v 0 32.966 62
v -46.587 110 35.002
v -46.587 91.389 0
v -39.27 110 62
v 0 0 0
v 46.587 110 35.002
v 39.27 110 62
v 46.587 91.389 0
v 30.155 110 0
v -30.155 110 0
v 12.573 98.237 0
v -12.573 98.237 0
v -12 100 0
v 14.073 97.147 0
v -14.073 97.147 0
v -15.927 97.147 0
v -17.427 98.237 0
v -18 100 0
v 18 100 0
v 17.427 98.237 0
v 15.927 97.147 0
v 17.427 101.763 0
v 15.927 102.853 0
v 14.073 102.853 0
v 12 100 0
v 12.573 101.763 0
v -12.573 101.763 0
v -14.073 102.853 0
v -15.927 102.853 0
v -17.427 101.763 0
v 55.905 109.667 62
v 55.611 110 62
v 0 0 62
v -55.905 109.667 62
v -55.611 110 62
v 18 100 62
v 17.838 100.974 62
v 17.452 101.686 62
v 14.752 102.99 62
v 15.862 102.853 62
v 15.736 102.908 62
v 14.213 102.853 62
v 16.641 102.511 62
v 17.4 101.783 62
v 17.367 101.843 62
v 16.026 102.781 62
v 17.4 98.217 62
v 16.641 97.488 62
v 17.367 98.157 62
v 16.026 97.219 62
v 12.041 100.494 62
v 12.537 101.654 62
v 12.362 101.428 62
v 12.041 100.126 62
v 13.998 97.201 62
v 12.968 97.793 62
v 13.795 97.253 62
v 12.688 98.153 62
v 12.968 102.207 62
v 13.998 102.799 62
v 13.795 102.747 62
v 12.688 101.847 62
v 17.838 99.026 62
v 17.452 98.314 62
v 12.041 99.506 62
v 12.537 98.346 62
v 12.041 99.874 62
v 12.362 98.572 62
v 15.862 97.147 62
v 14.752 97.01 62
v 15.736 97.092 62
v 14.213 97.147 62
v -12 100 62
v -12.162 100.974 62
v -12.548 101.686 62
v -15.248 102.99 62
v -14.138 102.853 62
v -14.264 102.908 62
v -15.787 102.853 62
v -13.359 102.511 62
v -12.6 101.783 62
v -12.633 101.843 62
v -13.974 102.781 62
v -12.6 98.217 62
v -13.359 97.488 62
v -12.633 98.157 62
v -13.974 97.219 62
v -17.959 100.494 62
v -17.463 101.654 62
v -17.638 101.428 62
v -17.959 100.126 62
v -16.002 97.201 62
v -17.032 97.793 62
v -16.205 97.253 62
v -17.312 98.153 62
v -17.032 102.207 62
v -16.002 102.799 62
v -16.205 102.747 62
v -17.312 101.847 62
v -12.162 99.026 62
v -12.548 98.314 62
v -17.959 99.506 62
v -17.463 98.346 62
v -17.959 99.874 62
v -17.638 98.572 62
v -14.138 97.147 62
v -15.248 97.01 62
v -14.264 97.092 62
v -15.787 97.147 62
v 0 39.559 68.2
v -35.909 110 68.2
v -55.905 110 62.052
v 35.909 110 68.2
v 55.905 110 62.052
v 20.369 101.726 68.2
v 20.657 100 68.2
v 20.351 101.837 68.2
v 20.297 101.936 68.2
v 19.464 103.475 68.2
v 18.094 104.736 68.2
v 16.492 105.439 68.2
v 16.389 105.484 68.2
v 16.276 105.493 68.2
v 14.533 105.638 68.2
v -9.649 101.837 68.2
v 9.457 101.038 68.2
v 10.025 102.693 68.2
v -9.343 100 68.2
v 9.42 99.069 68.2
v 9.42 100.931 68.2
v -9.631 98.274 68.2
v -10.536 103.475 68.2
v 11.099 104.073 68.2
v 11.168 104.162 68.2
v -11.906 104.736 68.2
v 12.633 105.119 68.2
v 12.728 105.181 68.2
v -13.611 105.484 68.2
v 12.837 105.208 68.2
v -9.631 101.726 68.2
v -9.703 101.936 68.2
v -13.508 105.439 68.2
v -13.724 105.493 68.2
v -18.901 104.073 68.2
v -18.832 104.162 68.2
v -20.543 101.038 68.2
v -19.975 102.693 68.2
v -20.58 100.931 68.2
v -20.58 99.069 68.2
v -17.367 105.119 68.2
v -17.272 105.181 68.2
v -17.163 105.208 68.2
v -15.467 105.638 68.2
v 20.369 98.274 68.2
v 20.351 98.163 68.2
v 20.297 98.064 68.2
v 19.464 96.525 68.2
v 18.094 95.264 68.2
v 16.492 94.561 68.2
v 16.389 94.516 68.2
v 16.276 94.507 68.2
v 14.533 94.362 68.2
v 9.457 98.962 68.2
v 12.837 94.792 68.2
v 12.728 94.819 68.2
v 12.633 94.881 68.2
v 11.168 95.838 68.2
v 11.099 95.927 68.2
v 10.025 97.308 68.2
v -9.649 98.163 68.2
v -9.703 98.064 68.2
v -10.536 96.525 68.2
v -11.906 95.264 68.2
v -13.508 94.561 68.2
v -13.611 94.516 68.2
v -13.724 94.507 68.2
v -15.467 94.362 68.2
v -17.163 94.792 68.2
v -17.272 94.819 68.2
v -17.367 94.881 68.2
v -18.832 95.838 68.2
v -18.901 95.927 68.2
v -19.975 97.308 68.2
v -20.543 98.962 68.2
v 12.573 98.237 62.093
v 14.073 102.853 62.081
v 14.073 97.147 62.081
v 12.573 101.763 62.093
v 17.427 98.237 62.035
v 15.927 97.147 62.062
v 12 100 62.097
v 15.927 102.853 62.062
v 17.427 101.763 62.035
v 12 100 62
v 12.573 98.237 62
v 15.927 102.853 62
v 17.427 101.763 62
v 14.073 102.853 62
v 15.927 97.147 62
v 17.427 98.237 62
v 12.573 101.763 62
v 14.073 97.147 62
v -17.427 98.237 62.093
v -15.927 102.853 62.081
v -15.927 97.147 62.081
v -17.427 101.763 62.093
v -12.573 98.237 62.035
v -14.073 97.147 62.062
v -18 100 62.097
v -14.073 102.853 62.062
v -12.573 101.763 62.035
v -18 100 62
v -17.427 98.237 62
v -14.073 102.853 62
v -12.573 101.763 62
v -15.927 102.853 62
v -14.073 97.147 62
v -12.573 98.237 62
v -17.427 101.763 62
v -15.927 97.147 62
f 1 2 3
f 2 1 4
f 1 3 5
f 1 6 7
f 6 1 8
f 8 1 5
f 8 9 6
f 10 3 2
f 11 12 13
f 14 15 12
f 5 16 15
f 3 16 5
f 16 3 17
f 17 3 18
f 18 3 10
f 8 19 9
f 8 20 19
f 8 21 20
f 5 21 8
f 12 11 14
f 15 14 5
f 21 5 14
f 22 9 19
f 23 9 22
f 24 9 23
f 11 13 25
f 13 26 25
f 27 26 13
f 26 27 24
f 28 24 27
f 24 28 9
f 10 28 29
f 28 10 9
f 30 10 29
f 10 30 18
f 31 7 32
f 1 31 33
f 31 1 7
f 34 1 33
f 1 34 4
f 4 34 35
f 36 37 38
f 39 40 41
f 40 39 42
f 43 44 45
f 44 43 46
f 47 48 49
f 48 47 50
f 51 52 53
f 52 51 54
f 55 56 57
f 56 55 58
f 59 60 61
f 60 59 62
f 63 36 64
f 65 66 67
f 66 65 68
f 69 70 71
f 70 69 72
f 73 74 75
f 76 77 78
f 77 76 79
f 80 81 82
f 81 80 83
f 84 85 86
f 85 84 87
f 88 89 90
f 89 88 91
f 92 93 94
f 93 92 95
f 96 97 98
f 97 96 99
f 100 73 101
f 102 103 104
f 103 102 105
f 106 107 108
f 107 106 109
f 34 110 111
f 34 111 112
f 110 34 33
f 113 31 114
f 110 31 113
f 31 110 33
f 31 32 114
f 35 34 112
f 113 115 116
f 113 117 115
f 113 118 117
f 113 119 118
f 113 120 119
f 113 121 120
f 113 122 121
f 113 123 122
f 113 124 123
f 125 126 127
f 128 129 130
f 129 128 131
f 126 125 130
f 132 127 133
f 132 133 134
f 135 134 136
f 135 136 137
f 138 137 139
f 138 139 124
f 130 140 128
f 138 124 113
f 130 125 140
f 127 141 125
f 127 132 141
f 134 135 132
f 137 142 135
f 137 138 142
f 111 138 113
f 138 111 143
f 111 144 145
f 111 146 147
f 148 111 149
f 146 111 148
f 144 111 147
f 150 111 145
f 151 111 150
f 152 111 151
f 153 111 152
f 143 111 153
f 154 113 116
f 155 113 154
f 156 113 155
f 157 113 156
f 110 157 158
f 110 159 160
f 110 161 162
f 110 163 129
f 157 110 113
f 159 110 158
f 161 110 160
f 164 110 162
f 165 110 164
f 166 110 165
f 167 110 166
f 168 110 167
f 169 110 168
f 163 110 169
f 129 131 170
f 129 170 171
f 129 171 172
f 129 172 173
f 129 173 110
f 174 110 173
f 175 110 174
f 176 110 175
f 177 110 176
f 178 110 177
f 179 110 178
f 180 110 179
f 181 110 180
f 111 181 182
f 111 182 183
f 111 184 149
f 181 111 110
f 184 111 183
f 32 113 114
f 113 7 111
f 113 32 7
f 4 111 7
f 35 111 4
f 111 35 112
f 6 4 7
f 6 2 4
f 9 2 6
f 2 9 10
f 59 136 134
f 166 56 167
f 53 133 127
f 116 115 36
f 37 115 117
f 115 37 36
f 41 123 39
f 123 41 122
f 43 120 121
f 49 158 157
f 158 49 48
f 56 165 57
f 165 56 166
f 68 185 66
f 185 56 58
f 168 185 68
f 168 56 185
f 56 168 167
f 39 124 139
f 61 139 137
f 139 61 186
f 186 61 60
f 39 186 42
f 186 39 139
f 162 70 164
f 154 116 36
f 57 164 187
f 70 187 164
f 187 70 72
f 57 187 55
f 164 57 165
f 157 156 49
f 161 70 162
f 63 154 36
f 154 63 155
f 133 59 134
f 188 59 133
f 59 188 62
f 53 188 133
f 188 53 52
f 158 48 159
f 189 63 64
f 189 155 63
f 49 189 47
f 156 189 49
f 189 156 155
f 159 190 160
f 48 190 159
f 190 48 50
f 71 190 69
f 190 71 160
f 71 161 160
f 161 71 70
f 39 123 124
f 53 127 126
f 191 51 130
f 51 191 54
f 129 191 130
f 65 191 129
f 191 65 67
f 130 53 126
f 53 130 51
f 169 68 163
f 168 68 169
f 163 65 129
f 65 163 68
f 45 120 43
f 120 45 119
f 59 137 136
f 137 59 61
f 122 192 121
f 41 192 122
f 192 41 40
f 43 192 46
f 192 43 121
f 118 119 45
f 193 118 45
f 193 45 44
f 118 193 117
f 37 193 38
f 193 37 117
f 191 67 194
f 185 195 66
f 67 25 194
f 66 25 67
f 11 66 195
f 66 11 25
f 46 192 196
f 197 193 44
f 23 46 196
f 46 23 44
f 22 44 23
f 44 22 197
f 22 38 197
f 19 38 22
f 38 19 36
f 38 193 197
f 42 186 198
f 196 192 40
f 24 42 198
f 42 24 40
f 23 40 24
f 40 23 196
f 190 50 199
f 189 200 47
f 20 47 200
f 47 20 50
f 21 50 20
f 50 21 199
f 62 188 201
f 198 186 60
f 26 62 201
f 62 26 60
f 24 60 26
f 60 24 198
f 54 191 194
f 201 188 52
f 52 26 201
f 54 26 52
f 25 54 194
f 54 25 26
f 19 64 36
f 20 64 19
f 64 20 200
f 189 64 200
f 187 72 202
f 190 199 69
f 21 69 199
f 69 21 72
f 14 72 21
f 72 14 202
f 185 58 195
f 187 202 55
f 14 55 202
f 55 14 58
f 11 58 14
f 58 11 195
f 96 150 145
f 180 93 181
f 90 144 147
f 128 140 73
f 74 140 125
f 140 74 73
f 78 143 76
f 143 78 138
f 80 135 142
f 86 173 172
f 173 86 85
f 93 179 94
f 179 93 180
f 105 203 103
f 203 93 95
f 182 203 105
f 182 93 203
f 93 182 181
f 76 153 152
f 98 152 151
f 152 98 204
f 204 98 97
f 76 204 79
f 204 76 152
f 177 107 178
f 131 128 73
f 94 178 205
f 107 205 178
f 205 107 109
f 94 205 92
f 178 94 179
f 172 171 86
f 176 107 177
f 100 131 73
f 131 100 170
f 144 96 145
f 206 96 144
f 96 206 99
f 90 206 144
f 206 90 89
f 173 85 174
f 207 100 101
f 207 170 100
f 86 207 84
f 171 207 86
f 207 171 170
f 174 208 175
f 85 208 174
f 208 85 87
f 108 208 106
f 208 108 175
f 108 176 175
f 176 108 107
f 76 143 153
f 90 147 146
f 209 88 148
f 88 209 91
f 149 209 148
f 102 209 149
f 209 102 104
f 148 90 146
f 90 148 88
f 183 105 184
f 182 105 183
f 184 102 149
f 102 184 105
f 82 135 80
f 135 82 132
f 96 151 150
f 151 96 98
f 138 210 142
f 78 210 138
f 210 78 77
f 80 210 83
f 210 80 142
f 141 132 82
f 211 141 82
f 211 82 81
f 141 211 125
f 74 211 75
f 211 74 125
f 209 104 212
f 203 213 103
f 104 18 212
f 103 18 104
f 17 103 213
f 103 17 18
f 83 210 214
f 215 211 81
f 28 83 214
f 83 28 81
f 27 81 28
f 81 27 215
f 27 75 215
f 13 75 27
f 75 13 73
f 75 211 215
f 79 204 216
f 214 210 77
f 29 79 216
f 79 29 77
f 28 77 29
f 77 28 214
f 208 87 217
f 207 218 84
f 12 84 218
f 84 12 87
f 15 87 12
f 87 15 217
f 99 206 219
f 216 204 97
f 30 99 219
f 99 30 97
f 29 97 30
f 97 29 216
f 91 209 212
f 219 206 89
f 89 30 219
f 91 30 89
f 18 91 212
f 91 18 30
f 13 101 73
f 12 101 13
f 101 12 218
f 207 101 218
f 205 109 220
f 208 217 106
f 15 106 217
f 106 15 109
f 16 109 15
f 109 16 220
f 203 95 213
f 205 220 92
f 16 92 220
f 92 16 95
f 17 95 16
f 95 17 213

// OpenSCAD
module _rawpart() {
    rotate([-90+62,0,0]) {
        rotate([0, 0, 45]) {
            difference() {
                cube([90, 90, 160]);
                translate([0, 0, -1]) {    
                    rotate([0,0,75]) {
                        cube([190, 190, 192]);
                    }
                    rotate([0,0,285]) {
                        cube([190, 190, 192]);
                    }
                }
            }
        }
    }
}

module screw() {
    union() {
        translate([0, 0, 100]) {
            cylinder(7, d1=6,  d2=12  );
        }
        cylinder(  101, d1=6,  d2=6  );
    }
}

module _block() {
    difference() {
        _rawpart();
        translate([-70, 0, -100]) {
            cube([200, 200, 100]);
        }
        translate([-50, 30, 62]) {
            cube([200, 200, 100]);
        }
    }
}

module holder() {
    difference() {
        union() {
            _block();
            translate([0,0,62]) {
                scale([1.2, 1.2 ,0.1]) {
                    _block();
                }
            }
        }
        translate([-75, 110,-1]) {
            cube([150, 105, 120]);
        }
    }
}



difference() {
    holder();
    translate([15,100,-38]) {
        screw();
    }
    translate([-15,100,-38]) {
        screw();
    }
}
